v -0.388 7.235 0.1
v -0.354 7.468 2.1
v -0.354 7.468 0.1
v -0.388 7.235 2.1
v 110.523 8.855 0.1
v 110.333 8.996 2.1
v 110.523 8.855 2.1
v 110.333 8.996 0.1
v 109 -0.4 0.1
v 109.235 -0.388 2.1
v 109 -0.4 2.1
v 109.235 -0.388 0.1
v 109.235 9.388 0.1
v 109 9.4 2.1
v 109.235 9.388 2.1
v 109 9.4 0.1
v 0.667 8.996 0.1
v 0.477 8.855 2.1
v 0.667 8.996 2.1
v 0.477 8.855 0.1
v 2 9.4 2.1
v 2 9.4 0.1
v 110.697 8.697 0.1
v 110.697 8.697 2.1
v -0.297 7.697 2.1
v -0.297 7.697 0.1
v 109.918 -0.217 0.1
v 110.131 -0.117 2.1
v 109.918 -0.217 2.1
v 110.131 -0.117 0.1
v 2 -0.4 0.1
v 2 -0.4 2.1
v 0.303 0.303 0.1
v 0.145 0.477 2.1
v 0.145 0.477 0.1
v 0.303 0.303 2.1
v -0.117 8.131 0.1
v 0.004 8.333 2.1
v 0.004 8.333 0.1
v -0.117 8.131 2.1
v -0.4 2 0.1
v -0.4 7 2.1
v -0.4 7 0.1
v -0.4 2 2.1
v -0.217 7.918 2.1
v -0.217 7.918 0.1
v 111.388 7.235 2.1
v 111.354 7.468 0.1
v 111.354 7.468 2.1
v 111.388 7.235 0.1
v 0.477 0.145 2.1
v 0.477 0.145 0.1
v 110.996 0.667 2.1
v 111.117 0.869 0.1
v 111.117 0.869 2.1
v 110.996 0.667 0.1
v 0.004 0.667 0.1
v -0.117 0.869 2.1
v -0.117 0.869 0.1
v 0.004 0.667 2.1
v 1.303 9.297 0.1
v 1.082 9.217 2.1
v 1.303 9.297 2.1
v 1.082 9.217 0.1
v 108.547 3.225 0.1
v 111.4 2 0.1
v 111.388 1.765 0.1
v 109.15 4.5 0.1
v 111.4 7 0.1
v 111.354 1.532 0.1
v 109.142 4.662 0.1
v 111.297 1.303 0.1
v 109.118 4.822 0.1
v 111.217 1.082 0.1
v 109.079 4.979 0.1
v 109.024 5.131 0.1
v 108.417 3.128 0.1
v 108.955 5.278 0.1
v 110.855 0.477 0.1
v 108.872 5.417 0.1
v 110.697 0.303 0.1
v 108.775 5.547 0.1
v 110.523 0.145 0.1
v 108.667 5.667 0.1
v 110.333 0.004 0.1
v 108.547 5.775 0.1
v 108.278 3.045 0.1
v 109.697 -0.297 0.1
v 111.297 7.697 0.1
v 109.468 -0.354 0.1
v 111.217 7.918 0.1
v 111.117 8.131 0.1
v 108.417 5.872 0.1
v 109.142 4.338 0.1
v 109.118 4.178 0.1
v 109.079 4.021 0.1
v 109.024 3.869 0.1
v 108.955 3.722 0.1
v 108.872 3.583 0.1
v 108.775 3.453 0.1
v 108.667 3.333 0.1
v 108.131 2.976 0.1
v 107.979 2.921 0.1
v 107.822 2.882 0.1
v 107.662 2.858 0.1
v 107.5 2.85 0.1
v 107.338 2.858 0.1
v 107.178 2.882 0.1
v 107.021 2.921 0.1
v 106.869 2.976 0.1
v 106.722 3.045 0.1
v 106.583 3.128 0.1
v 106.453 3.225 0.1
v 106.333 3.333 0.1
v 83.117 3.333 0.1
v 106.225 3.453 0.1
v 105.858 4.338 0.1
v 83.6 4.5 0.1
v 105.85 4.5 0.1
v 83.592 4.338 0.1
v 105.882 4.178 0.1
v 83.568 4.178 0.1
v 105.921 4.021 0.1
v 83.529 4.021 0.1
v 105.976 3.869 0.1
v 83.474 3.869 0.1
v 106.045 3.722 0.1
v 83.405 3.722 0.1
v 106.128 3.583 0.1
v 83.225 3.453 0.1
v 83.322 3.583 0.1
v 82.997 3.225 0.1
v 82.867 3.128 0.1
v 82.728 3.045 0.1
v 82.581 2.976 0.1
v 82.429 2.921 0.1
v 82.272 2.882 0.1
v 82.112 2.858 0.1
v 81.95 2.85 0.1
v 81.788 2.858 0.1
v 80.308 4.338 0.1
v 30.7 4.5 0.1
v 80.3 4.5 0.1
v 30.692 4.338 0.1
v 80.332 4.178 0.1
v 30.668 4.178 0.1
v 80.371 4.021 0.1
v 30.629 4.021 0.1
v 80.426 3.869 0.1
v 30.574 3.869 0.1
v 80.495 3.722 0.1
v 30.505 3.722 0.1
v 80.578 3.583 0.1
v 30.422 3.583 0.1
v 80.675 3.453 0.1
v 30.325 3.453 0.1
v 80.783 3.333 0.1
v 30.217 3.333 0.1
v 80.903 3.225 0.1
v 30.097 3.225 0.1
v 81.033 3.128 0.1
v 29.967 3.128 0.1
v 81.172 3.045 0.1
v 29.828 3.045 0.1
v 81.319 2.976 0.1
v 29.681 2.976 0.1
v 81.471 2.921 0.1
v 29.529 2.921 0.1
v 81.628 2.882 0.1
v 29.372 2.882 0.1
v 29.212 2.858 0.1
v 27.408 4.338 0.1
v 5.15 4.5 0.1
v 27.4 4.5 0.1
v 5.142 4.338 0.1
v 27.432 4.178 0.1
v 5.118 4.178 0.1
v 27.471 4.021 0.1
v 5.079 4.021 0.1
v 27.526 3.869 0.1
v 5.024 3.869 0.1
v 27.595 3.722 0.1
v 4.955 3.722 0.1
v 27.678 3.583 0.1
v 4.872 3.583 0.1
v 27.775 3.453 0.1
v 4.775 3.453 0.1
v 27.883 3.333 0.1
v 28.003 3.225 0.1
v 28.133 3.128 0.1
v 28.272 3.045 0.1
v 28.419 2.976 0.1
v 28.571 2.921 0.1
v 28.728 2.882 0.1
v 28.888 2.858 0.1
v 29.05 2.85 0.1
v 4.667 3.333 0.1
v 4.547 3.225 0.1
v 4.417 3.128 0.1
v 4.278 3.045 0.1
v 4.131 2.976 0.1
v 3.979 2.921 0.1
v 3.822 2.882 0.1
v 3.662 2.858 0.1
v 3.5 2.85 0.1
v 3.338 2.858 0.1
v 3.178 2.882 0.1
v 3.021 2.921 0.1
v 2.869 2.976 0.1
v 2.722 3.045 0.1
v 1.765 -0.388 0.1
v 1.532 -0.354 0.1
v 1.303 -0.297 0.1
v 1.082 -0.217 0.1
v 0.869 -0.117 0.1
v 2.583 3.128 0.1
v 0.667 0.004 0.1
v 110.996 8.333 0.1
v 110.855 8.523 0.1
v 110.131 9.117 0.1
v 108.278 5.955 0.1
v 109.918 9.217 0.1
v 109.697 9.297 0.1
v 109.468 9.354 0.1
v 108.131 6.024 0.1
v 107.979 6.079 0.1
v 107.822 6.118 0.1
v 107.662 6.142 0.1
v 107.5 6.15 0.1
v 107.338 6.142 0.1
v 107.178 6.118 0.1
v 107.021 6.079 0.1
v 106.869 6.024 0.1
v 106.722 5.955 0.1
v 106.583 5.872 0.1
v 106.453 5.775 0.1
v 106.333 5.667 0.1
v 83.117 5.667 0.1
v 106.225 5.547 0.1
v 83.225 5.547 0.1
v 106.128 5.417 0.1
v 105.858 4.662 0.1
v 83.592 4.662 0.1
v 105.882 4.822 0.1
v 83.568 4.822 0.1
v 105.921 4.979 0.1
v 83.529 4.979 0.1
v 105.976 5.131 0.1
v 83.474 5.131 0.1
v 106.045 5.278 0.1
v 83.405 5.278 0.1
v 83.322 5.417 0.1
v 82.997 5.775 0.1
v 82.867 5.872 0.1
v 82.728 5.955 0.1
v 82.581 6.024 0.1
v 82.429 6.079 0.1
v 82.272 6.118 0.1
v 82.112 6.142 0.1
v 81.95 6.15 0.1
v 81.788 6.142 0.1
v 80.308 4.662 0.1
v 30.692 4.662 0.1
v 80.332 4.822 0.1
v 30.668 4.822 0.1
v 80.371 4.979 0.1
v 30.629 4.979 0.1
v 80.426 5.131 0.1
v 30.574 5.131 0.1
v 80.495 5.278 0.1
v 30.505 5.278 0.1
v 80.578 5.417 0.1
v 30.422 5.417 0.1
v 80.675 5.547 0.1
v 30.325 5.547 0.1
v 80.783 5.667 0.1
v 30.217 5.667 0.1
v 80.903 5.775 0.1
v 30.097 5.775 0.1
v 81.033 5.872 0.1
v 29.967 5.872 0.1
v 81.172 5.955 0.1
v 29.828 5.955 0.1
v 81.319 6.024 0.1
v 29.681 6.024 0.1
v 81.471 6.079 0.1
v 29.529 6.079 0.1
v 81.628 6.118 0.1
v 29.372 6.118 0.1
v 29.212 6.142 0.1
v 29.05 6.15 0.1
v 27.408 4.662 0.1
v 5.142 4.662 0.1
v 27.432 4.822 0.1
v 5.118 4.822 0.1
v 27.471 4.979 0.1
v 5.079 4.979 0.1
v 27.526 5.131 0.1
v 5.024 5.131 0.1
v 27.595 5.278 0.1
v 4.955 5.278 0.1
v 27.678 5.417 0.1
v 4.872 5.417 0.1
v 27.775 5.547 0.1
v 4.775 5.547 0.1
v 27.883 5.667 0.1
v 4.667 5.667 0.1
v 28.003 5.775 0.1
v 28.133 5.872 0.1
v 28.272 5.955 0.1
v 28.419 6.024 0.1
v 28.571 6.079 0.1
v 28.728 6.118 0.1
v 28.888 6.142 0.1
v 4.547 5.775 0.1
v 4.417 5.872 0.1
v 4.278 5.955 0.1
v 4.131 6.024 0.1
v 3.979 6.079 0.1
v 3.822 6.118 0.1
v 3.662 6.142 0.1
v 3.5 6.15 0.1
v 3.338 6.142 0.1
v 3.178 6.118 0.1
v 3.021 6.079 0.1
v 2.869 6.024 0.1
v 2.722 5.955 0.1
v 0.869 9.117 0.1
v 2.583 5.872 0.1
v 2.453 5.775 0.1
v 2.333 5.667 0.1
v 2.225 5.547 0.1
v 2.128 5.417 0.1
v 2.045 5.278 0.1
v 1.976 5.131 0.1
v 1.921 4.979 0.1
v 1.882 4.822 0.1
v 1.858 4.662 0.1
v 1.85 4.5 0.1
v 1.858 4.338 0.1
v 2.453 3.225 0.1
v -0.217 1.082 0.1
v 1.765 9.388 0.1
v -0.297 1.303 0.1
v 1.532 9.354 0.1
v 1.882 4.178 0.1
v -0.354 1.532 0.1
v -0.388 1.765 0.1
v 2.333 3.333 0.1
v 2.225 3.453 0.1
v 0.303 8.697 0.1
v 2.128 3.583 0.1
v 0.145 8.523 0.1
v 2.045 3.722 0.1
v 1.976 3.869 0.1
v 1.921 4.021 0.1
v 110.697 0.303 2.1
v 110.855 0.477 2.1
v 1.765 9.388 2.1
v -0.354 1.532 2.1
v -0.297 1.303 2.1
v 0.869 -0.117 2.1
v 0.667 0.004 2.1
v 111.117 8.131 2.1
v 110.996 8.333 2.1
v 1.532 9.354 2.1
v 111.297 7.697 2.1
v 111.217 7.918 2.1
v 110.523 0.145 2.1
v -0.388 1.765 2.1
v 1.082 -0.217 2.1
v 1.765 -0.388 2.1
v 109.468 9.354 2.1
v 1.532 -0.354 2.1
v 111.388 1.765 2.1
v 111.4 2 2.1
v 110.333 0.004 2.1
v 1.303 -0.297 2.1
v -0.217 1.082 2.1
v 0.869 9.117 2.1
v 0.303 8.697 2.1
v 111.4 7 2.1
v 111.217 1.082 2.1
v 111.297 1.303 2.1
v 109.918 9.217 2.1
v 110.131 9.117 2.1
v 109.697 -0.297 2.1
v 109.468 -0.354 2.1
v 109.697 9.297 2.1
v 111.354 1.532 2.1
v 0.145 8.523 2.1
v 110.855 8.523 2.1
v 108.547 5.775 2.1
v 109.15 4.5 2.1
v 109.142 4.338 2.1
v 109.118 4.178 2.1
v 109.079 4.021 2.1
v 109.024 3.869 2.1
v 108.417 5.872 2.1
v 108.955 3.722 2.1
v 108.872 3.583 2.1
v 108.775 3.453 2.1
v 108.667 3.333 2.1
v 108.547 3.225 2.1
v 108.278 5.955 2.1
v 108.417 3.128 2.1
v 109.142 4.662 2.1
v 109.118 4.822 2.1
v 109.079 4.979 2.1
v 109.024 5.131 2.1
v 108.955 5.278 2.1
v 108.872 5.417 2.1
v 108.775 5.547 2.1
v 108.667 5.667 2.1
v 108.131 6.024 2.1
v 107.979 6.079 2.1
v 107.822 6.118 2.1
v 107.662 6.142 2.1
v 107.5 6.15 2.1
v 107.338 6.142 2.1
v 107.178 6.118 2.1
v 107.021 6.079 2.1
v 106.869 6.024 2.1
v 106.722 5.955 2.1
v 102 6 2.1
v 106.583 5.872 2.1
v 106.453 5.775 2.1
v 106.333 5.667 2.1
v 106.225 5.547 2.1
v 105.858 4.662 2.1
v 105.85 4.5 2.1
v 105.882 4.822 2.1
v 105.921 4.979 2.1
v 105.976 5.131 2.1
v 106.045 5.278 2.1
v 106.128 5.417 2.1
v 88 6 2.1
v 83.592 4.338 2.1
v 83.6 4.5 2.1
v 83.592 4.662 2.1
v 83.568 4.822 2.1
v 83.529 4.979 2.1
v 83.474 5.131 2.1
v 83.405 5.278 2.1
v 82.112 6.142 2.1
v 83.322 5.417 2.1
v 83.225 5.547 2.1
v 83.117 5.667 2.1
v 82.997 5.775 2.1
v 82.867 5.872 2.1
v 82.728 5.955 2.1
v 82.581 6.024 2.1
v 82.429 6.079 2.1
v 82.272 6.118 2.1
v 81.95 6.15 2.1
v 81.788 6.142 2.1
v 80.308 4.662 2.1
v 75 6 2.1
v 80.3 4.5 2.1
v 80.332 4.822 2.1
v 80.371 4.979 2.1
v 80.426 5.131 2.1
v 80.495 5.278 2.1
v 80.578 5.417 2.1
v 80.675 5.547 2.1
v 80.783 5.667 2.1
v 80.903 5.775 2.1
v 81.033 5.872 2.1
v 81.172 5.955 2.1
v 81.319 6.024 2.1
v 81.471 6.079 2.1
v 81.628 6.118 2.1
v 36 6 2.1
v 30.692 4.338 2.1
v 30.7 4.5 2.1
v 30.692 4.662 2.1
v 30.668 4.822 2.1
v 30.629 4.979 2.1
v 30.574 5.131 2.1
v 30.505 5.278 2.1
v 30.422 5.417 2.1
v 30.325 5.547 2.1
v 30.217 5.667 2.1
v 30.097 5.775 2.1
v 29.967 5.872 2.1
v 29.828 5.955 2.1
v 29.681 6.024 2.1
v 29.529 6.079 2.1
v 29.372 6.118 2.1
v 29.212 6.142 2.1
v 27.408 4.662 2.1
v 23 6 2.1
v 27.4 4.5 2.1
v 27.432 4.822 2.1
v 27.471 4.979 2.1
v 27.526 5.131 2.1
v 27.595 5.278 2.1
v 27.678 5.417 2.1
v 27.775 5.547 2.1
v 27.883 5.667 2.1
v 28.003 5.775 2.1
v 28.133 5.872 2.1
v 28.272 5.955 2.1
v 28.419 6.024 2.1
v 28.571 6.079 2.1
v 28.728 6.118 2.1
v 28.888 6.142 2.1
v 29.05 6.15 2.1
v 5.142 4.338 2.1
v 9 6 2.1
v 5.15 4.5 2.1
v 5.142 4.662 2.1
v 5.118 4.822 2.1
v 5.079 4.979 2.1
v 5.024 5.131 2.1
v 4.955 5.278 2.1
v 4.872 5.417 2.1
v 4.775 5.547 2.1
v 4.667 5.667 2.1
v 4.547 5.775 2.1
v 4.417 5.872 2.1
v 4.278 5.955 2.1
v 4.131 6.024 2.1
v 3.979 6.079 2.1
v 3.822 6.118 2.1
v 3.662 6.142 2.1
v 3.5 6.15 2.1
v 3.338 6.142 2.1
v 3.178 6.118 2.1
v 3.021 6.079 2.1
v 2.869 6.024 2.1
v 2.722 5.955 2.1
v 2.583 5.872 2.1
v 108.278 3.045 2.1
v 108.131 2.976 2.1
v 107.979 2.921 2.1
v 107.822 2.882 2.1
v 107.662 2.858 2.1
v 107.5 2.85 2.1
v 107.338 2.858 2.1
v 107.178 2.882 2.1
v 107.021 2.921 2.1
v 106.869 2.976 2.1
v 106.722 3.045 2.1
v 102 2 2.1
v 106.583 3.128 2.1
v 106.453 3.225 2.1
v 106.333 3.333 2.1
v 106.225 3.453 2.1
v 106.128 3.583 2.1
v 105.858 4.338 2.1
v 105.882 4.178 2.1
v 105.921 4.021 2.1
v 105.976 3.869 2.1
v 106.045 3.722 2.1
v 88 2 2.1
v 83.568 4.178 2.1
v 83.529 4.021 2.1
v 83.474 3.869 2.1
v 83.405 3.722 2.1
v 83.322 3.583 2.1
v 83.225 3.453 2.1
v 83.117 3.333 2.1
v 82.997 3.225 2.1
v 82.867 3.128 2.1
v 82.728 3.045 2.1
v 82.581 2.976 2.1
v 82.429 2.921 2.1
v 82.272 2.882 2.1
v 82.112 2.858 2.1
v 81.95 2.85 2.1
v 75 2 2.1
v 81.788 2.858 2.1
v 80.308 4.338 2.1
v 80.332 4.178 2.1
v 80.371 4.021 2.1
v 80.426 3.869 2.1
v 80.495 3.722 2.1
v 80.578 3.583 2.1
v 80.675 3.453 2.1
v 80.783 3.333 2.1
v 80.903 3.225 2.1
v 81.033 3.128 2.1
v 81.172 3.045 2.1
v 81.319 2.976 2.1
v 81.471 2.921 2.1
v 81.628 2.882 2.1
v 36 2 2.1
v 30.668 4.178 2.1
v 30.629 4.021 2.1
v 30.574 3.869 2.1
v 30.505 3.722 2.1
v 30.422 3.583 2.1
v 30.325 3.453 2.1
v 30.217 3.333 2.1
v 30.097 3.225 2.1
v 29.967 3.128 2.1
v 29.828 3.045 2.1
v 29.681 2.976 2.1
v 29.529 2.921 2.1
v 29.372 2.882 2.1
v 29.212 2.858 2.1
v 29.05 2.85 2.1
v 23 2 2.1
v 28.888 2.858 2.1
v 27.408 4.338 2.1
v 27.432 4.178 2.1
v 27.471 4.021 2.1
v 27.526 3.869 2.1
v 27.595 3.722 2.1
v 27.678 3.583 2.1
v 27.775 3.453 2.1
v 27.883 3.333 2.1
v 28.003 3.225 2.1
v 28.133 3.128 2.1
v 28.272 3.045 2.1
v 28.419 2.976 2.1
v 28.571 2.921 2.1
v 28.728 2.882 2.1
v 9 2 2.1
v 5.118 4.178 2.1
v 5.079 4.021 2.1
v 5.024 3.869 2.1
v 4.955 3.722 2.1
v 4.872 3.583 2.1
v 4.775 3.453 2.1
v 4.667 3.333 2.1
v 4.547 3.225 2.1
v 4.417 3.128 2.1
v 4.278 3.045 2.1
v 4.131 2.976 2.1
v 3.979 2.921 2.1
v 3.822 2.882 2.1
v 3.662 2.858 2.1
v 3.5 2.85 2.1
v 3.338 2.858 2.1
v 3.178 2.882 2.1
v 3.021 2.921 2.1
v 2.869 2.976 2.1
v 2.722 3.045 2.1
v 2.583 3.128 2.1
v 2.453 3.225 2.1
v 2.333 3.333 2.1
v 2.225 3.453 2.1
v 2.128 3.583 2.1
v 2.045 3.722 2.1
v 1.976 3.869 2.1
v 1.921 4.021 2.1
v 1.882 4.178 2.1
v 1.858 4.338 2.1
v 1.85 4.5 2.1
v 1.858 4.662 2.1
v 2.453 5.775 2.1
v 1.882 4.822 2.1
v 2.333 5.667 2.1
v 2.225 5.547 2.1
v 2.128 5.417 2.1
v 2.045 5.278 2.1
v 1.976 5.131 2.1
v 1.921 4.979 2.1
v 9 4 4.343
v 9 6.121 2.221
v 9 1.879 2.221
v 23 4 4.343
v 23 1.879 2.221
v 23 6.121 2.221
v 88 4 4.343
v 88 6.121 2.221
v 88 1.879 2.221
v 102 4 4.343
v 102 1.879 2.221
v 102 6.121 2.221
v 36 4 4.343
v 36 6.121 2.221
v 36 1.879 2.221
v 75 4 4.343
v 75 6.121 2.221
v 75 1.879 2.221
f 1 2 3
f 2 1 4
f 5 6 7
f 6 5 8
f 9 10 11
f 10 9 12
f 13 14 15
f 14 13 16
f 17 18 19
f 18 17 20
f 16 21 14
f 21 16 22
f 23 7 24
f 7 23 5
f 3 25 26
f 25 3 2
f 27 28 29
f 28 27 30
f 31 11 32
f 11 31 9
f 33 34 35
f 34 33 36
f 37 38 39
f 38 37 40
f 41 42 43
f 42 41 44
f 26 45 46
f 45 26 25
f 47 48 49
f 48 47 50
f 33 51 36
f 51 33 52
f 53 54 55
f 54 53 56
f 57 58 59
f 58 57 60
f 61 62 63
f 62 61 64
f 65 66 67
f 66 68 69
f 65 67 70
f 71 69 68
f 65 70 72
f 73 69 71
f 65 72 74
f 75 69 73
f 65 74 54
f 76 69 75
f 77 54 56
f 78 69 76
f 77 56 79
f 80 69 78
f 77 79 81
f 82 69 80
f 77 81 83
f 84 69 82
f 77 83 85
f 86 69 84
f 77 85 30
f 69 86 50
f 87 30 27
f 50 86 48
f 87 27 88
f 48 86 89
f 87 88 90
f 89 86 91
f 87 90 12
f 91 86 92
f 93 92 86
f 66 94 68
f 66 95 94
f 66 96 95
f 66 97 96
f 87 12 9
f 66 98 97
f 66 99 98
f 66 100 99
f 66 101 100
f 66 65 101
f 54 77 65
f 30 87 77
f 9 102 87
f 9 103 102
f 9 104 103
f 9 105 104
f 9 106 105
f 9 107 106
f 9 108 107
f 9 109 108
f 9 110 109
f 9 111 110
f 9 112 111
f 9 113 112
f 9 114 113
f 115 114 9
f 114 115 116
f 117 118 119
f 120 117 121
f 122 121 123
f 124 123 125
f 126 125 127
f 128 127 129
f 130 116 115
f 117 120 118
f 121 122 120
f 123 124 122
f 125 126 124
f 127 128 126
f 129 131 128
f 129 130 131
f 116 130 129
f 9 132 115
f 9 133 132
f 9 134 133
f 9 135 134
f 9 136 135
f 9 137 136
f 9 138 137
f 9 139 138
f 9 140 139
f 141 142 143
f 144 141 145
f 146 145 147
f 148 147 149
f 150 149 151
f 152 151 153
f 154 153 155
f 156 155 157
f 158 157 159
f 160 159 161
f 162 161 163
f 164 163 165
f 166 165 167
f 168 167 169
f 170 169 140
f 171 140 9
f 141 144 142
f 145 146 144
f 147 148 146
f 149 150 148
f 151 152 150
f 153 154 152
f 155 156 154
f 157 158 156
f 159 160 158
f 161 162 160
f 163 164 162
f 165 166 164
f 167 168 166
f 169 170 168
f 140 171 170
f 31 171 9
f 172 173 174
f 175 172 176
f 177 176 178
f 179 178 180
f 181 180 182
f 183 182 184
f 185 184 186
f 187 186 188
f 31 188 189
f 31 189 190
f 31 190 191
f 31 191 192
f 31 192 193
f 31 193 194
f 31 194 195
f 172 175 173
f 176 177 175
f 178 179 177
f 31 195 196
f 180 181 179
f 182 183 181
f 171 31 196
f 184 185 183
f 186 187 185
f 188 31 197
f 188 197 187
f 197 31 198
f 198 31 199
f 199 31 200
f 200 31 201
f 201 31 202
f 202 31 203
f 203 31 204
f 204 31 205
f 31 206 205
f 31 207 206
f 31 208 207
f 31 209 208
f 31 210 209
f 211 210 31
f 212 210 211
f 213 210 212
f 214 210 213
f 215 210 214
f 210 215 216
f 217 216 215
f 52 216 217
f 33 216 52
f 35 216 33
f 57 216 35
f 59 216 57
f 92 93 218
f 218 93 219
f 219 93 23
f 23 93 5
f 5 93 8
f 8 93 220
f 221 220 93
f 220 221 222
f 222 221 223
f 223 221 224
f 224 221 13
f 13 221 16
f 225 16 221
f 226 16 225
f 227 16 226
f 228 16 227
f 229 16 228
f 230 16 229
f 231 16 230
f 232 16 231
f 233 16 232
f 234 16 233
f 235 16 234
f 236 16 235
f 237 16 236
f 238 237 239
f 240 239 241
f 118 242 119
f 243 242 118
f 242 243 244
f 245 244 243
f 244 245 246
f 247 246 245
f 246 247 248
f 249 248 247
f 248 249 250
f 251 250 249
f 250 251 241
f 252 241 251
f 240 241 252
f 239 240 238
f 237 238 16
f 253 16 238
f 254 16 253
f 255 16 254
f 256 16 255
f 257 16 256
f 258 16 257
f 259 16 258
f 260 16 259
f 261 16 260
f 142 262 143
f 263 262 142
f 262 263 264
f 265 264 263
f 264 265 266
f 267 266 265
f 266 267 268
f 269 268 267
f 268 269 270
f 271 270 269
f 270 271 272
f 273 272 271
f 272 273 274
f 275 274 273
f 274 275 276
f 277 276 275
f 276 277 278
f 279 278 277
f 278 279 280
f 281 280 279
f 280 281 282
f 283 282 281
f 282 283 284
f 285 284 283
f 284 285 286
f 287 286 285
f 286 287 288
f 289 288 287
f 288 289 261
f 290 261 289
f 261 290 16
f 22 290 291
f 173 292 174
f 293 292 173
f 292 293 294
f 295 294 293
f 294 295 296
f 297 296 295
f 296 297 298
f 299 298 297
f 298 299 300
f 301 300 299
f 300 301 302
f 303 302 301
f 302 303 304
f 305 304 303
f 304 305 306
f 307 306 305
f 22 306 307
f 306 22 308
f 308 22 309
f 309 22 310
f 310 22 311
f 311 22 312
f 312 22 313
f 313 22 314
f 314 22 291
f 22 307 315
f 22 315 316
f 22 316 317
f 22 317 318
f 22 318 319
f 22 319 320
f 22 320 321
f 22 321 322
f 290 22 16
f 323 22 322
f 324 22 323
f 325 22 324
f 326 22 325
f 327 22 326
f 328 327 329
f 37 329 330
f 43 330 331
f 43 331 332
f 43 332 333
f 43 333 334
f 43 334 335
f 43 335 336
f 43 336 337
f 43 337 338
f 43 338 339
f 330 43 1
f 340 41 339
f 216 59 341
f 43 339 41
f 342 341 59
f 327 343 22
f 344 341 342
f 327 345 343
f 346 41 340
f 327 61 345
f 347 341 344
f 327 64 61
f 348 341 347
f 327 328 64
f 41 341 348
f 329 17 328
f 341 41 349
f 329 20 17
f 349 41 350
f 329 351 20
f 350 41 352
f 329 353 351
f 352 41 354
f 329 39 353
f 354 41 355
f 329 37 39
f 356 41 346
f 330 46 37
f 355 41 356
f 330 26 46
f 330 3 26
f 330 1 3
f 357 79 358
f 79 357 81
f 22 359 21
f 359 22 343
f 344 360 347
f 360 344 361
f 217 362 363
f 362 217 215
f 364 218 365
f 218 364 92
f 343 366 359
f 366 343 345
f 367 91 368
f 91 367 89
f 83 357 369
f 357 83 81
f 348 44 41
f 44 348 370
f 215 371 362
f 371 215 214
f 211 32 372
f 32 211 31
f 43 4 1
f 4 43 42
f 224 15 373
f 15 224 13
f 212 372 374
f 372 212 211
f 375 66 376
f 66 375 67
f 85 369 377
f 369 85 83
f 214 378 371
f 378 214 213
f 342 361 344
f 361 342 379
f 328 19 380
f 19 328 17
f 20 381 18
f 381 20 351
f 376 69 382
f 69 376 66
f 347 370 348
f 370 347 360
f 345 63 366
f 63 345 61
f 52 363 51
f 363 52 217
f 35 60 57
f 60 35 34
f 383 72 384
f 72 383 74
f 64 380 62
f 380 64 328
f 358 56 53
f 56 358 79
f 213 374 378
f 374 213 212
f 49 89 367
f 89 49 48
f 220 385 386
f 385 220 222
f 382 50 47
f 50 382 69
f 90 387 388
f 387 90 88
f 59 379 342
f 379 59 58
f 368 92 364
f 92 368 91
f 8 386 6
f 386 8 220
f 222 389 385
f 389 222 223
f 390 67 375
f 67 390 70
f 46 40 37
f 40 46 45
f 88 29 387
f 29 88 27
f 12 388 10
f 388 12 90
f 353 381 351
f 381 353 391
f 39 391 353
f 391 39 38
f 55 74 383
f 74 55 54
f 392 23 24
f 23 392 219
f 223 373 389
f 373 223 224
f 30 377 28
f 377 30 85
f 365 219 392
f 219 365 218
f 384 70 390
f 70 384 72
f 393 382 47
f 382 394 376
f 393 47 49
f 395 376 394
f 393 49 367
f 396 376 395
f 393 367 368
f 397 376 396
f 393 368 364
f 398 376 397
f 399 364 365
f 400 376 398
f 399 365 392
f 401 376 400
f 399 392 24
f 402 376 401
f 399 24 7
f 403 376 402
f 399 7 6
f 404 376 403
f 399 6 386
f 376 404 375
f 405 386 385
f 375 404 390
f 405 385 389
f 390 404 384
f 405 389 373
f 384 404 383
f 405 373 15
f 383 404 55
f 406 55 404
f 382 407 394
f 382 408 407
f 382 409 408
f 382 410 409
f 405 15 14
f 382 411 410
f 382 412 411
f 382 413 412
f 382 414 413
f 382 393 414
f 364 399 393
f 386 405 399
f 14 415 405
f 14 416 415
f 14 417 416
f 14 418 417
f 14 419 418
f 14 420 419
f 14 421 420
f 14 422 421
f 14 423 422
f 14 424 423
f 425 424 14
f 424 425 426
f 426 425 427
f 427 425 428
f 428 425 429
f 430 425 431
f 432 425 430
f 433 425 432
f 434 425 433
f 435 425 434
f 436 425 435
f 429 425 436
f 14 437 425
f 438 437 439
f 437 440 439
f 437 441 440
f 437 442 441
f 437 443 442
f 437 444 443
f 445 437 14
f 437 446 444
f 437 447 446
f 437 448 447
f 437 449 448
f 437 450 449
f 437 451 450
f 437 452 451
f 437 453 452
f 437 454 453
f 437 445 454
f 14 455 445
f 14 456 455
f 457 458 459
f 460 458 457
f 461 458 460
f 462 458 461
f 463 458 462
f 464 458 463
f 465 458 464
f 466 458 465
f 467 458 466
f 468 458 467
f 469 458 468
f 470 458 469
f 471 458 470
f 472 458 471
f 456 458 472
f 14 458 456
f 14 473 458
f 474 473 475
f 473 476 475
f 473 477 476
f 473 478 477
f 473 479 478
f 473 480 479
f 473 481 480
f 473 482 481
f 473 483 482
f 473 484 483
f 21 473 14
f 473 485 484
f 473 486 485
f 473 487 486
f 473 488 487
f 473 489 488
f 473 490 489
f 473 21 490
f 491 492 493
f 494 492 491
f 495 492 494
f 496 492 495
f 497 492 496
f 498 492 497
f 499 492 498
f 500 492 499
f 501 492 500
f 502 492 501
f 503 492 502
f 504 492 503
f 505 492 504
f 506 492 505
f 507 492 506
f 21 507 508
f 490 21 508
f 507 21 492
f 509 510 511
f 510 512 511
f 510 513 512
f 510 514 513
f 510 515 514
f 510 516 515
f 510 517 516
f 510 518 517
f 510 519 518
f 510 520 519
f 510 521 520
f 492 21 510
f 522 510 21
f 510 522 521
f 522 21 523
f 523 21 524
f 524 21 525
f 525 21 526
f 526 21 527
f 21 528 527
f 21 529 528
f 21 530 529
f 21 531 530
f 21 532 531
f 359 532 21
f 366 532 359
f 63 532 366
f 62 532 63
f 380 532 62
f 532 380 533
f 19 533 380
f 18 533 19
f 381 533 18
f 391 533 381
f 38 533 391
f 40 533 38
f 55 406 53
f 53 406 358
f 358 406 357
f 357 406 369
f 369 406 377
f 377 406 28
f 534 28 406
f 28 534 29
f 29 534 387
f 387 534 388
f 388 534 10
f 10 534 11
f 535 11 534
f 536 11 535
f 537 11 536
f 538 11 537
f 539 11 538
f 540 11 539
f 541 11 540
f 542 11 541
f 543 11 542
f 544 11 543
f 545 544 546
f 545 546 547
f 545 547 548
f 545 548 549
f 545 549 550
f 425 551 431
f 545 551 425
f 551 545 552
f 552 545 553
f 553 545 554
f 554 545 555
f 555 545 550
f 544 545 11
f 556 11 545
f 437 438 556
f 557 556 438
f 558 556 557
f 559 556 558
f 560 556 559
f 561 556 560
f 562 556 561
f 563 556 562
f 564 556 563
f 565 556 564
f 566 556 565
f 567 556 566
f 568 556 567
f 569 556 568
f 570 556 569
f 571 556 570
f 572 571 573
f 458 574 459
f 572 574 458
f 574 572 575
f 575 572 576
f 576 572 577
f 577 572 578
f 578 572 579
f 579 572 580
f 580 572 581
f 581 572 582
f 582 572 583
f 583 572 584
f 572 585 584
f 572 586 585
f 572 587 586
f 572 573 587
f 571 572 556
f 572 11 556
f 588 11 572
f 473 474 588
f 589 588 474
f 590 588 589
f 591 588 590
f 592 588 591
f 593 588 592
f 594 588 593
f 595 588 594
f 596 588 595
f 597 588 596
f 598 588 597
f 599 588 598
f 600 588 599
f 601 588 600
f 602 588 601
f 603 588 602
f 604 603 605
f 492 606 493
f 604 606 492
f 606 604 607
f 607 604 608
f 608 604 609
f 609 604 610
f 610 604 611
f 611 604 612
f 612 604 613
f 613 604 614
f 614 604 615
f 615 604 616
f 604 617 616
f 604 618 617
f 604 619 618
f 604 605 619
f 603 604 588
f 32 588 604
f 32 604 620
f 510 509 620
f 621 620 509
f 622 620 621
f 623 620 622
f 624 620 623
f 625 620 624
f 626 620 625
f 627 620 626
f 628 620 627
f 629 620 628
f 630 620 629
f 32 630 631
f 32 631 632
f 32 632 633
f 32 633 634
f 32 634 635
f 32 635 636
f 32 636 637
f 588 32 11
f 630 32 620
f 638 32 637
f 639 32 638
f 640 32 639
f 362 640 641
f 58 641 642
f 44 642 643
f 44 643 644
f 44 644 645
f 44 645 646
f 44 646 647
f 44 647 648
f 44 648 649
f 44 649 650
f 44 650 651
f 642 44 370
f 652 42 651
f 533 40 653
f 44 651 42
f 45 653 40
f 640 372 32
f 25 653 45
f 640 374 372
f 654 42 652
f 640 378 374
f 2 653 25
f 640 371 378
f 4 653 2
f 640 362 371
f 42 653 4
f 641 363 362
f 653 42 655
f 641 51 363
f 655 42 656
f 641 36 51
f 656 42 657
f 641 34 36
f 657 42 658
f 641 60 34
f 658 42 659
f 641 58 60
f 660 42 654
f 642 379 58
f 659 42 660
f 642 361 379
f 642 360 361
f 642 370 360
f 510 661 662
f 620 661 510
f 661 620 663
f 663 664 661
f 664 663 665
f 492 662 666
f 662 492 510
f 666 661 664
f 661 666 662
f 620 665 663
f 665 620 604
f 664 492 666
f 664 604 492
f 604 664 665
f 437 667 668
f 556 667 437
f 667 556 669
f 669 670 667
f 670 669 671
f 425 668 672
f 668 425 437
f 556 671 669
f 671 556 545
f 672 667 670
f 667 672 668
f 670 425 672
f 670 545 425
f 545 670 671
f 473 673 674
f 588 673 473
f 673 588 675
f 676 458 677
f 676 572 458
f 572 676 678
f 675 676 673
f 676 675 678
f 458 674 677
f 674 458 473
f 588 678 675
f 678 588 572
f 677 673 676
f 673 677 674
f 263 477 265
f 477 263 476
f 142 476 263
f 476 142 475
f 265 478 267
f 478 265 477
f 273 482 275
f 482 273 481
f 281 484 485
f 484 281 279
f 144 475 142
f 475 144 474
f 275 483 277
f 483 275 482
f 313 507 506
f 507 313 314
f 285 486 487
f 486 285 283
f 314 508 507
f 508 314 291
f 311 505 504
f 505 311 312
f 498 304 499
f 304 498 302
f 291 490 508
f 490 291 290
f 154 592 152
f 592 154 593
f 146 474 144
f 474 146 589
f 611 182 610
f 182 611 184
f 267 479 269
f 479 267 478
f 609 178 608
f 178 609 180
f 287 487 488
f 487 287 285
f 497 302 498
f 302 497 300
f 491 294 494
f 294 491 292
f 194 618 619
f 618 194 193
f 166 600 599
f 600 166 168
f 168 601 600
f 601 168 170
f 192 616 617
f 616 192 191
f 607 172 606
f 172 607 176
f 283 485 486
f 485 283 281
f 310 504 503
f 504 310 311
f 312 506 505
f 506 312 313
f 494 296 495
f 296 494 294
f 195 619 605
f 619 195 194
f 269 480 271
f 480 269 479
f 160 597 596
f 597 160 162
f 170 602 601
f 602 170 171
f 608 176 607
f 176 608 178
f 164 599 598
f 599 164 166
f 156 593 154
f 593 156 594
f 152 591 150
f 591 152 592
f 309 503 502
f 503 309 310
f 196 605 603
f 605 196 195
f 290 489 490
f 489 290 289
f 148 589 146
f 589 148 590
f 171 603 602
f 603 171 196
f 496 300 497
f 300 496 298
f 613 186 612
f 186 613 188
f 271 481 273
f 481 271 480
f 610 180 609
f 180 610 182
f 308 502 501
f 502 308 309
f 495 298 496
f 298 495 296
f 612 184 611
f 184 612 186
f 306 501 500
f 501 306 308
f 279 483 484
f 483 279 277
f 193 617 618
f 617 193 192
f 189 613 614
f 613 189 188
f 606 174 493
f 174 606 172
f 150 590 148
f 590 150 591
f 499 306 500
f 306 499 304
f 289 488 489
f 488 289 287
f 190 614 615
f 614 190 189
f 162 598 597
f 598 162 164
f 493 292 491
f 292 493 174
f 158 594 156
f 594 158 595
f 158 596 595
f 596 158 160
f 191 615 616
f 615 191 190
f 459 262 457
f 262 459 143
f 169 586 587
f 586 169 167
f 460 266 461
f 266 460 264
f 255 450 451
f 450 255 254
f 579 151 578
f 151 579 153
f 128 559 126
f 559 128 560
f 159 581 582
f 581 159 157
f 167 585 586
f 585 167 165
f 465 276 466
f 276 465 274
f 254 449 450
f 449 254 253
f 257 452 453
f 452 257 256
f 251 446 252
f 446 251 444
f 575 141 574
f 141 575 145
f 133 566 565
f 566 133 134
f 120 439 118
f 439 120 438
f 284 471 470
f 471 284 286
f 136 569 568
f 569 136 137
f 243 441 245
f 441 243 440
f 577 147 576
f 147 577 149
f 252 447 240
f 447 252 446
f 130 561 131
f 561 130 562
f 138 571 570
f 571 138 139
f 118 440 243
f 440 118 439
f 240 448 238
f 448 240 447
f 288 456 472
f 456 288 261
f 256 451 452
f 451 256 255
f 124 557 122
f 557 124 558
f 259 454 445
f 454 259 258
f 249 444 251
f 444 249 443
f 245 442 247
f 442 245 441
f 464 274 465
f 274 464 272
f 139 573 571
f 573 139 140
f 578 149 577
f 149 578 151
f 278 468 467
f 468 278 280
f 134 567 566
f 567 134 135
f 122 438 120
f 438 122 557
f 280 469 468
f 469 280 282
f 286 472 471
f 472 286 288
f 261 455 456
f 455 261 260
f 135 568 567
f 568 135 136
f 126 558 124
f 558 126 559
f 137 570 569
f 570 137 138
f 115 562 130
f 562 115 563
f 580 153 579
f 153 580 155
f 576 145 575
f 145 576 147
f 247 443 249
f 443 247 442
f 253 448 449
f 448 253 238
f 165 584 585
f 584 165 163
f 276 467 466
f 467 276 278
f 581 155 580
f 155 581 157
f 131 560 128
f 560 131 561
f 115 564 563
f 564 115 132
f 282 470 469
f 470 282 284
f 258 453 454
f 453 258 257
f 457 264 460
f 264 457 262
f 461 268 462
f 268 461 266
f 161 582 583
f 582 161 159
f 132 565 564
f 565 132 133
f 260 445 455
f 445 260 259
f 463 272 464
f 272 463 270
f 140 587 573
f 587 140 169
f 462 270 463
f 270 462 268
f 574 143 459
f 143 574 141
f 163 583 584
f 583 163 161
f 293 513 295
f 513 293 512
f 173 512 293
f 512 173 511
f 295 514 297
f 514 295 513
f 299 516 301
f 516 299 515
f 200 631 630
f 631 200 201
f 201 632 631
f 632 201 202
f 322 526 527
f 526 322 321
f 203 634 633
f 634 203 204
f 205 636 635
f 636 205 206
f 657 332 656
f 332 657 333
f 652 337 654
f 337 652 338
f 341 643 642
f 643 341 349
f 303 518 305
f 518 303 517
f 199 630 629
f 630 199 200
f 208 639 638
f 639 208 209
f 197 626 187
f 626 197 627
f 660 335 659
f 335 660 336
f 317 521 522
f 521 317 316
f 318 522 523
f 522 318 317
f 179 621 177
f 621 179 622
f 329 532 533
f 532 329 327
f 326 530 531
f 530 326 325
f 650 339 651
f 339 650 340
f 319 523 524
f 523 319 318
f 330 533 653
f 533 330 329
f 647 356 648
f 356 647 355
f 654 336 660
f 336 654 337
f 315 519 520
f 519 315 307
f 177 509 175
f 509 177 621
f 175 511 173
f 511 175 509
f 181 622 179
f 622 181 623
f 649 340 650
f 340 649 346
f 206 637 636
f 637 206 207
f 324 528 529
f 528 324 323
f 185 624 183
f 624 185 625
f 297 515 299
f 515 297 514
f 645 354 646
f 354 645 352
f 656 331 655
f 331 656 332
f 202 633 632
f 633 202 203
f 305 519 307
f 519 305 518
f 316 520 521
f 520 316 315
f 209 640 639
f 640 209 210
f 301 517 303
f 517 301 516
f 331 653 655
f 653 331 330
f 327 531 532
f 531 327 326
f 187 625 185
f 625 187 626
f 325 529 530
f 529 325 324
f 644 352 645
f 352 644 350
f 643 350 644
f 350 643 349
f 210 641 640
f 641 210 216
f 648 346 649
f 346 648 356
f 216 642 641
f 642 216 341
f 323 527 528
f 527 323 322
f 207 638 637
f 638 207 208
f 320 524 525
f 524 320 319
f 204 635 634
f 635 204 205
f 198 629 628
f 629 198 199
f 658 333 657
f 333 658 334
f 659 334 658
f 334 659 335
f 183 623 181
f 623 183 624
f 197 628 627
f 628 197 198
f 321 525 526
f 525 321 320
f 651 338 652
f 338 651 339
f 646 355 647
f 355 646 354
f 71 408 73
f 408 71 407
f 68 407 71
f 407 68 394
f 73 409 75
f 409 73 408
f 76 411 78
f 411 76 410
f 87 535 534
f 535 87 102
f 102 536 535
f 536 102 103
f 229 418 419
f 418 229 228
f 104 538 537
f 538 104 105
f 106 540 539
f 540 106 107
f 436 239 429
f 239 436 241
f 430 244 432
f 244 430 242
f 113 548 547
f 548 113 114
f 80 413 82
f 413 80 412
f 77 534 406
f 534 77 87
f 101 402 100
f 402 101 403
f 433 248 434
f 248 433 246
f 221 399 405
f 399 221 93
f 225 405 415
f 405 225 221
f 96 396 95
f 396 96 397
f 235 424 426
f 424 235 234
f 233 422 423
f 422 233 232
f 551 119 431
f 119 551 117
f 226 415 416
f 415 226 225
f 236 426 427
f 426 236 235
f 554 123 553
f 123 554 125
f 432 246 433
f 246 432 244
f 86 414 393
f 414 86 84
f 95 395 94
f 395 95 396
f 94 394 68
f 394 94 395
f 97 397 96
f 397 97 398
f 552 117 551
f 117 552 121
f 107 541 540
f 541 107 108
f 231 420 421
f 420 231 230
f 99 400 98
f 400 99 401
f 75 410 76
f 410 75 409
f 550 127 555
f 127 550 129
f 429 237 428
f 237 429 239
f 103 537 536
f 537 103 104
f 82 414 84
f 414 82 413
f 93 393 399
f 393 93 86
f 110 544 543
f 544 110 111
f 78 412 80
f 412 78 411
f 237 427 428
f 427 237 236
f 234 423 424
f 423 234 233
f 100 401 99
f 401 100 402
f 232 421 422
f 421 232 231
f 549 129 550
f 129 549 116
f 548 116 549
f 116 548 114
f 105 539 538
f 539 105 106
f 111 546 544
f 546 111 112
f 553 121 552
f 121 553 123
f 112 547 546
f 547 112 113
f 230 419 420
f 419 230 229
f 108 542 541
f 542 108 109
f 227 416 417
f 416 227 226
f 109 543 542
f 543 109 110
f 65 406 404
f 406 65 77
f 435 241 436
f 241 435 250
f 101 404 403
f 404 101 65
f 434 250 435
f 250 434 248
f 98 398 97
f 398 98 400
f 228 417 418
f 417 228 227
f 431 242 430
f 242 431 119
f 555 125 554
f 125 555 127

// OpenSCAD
$fn=64;

difference()
{
  translate([2,2,0.1]) {
      linear_extrude(2) offset(2.4) square([111-4, 9-4]);
      translate([7,2,0]) rotate([45,0,0])  cube([14,3, 3]);
      translate([86,2,0]) rotate([45,0,0])  cube([14,3, 3]);
      translate([34,2,0]) rotate([45,0,0])  cube([39,3, 3]);
  }
  
  translate ([111 / 2, 4.5,0]) {
    translate ([-52.9/2, 0, 0]) cylinder(d=3.3, h=4);
    translate ([52.9/2, 0, 0]) cylinder(d=3.3, h=4);

    translate ([-104/2, 0, 0]) cylinder(d=3.3, h=4);
    translate ([104/2, 0, 0]) cylinder(d=3.3, h=4);

  }
}
